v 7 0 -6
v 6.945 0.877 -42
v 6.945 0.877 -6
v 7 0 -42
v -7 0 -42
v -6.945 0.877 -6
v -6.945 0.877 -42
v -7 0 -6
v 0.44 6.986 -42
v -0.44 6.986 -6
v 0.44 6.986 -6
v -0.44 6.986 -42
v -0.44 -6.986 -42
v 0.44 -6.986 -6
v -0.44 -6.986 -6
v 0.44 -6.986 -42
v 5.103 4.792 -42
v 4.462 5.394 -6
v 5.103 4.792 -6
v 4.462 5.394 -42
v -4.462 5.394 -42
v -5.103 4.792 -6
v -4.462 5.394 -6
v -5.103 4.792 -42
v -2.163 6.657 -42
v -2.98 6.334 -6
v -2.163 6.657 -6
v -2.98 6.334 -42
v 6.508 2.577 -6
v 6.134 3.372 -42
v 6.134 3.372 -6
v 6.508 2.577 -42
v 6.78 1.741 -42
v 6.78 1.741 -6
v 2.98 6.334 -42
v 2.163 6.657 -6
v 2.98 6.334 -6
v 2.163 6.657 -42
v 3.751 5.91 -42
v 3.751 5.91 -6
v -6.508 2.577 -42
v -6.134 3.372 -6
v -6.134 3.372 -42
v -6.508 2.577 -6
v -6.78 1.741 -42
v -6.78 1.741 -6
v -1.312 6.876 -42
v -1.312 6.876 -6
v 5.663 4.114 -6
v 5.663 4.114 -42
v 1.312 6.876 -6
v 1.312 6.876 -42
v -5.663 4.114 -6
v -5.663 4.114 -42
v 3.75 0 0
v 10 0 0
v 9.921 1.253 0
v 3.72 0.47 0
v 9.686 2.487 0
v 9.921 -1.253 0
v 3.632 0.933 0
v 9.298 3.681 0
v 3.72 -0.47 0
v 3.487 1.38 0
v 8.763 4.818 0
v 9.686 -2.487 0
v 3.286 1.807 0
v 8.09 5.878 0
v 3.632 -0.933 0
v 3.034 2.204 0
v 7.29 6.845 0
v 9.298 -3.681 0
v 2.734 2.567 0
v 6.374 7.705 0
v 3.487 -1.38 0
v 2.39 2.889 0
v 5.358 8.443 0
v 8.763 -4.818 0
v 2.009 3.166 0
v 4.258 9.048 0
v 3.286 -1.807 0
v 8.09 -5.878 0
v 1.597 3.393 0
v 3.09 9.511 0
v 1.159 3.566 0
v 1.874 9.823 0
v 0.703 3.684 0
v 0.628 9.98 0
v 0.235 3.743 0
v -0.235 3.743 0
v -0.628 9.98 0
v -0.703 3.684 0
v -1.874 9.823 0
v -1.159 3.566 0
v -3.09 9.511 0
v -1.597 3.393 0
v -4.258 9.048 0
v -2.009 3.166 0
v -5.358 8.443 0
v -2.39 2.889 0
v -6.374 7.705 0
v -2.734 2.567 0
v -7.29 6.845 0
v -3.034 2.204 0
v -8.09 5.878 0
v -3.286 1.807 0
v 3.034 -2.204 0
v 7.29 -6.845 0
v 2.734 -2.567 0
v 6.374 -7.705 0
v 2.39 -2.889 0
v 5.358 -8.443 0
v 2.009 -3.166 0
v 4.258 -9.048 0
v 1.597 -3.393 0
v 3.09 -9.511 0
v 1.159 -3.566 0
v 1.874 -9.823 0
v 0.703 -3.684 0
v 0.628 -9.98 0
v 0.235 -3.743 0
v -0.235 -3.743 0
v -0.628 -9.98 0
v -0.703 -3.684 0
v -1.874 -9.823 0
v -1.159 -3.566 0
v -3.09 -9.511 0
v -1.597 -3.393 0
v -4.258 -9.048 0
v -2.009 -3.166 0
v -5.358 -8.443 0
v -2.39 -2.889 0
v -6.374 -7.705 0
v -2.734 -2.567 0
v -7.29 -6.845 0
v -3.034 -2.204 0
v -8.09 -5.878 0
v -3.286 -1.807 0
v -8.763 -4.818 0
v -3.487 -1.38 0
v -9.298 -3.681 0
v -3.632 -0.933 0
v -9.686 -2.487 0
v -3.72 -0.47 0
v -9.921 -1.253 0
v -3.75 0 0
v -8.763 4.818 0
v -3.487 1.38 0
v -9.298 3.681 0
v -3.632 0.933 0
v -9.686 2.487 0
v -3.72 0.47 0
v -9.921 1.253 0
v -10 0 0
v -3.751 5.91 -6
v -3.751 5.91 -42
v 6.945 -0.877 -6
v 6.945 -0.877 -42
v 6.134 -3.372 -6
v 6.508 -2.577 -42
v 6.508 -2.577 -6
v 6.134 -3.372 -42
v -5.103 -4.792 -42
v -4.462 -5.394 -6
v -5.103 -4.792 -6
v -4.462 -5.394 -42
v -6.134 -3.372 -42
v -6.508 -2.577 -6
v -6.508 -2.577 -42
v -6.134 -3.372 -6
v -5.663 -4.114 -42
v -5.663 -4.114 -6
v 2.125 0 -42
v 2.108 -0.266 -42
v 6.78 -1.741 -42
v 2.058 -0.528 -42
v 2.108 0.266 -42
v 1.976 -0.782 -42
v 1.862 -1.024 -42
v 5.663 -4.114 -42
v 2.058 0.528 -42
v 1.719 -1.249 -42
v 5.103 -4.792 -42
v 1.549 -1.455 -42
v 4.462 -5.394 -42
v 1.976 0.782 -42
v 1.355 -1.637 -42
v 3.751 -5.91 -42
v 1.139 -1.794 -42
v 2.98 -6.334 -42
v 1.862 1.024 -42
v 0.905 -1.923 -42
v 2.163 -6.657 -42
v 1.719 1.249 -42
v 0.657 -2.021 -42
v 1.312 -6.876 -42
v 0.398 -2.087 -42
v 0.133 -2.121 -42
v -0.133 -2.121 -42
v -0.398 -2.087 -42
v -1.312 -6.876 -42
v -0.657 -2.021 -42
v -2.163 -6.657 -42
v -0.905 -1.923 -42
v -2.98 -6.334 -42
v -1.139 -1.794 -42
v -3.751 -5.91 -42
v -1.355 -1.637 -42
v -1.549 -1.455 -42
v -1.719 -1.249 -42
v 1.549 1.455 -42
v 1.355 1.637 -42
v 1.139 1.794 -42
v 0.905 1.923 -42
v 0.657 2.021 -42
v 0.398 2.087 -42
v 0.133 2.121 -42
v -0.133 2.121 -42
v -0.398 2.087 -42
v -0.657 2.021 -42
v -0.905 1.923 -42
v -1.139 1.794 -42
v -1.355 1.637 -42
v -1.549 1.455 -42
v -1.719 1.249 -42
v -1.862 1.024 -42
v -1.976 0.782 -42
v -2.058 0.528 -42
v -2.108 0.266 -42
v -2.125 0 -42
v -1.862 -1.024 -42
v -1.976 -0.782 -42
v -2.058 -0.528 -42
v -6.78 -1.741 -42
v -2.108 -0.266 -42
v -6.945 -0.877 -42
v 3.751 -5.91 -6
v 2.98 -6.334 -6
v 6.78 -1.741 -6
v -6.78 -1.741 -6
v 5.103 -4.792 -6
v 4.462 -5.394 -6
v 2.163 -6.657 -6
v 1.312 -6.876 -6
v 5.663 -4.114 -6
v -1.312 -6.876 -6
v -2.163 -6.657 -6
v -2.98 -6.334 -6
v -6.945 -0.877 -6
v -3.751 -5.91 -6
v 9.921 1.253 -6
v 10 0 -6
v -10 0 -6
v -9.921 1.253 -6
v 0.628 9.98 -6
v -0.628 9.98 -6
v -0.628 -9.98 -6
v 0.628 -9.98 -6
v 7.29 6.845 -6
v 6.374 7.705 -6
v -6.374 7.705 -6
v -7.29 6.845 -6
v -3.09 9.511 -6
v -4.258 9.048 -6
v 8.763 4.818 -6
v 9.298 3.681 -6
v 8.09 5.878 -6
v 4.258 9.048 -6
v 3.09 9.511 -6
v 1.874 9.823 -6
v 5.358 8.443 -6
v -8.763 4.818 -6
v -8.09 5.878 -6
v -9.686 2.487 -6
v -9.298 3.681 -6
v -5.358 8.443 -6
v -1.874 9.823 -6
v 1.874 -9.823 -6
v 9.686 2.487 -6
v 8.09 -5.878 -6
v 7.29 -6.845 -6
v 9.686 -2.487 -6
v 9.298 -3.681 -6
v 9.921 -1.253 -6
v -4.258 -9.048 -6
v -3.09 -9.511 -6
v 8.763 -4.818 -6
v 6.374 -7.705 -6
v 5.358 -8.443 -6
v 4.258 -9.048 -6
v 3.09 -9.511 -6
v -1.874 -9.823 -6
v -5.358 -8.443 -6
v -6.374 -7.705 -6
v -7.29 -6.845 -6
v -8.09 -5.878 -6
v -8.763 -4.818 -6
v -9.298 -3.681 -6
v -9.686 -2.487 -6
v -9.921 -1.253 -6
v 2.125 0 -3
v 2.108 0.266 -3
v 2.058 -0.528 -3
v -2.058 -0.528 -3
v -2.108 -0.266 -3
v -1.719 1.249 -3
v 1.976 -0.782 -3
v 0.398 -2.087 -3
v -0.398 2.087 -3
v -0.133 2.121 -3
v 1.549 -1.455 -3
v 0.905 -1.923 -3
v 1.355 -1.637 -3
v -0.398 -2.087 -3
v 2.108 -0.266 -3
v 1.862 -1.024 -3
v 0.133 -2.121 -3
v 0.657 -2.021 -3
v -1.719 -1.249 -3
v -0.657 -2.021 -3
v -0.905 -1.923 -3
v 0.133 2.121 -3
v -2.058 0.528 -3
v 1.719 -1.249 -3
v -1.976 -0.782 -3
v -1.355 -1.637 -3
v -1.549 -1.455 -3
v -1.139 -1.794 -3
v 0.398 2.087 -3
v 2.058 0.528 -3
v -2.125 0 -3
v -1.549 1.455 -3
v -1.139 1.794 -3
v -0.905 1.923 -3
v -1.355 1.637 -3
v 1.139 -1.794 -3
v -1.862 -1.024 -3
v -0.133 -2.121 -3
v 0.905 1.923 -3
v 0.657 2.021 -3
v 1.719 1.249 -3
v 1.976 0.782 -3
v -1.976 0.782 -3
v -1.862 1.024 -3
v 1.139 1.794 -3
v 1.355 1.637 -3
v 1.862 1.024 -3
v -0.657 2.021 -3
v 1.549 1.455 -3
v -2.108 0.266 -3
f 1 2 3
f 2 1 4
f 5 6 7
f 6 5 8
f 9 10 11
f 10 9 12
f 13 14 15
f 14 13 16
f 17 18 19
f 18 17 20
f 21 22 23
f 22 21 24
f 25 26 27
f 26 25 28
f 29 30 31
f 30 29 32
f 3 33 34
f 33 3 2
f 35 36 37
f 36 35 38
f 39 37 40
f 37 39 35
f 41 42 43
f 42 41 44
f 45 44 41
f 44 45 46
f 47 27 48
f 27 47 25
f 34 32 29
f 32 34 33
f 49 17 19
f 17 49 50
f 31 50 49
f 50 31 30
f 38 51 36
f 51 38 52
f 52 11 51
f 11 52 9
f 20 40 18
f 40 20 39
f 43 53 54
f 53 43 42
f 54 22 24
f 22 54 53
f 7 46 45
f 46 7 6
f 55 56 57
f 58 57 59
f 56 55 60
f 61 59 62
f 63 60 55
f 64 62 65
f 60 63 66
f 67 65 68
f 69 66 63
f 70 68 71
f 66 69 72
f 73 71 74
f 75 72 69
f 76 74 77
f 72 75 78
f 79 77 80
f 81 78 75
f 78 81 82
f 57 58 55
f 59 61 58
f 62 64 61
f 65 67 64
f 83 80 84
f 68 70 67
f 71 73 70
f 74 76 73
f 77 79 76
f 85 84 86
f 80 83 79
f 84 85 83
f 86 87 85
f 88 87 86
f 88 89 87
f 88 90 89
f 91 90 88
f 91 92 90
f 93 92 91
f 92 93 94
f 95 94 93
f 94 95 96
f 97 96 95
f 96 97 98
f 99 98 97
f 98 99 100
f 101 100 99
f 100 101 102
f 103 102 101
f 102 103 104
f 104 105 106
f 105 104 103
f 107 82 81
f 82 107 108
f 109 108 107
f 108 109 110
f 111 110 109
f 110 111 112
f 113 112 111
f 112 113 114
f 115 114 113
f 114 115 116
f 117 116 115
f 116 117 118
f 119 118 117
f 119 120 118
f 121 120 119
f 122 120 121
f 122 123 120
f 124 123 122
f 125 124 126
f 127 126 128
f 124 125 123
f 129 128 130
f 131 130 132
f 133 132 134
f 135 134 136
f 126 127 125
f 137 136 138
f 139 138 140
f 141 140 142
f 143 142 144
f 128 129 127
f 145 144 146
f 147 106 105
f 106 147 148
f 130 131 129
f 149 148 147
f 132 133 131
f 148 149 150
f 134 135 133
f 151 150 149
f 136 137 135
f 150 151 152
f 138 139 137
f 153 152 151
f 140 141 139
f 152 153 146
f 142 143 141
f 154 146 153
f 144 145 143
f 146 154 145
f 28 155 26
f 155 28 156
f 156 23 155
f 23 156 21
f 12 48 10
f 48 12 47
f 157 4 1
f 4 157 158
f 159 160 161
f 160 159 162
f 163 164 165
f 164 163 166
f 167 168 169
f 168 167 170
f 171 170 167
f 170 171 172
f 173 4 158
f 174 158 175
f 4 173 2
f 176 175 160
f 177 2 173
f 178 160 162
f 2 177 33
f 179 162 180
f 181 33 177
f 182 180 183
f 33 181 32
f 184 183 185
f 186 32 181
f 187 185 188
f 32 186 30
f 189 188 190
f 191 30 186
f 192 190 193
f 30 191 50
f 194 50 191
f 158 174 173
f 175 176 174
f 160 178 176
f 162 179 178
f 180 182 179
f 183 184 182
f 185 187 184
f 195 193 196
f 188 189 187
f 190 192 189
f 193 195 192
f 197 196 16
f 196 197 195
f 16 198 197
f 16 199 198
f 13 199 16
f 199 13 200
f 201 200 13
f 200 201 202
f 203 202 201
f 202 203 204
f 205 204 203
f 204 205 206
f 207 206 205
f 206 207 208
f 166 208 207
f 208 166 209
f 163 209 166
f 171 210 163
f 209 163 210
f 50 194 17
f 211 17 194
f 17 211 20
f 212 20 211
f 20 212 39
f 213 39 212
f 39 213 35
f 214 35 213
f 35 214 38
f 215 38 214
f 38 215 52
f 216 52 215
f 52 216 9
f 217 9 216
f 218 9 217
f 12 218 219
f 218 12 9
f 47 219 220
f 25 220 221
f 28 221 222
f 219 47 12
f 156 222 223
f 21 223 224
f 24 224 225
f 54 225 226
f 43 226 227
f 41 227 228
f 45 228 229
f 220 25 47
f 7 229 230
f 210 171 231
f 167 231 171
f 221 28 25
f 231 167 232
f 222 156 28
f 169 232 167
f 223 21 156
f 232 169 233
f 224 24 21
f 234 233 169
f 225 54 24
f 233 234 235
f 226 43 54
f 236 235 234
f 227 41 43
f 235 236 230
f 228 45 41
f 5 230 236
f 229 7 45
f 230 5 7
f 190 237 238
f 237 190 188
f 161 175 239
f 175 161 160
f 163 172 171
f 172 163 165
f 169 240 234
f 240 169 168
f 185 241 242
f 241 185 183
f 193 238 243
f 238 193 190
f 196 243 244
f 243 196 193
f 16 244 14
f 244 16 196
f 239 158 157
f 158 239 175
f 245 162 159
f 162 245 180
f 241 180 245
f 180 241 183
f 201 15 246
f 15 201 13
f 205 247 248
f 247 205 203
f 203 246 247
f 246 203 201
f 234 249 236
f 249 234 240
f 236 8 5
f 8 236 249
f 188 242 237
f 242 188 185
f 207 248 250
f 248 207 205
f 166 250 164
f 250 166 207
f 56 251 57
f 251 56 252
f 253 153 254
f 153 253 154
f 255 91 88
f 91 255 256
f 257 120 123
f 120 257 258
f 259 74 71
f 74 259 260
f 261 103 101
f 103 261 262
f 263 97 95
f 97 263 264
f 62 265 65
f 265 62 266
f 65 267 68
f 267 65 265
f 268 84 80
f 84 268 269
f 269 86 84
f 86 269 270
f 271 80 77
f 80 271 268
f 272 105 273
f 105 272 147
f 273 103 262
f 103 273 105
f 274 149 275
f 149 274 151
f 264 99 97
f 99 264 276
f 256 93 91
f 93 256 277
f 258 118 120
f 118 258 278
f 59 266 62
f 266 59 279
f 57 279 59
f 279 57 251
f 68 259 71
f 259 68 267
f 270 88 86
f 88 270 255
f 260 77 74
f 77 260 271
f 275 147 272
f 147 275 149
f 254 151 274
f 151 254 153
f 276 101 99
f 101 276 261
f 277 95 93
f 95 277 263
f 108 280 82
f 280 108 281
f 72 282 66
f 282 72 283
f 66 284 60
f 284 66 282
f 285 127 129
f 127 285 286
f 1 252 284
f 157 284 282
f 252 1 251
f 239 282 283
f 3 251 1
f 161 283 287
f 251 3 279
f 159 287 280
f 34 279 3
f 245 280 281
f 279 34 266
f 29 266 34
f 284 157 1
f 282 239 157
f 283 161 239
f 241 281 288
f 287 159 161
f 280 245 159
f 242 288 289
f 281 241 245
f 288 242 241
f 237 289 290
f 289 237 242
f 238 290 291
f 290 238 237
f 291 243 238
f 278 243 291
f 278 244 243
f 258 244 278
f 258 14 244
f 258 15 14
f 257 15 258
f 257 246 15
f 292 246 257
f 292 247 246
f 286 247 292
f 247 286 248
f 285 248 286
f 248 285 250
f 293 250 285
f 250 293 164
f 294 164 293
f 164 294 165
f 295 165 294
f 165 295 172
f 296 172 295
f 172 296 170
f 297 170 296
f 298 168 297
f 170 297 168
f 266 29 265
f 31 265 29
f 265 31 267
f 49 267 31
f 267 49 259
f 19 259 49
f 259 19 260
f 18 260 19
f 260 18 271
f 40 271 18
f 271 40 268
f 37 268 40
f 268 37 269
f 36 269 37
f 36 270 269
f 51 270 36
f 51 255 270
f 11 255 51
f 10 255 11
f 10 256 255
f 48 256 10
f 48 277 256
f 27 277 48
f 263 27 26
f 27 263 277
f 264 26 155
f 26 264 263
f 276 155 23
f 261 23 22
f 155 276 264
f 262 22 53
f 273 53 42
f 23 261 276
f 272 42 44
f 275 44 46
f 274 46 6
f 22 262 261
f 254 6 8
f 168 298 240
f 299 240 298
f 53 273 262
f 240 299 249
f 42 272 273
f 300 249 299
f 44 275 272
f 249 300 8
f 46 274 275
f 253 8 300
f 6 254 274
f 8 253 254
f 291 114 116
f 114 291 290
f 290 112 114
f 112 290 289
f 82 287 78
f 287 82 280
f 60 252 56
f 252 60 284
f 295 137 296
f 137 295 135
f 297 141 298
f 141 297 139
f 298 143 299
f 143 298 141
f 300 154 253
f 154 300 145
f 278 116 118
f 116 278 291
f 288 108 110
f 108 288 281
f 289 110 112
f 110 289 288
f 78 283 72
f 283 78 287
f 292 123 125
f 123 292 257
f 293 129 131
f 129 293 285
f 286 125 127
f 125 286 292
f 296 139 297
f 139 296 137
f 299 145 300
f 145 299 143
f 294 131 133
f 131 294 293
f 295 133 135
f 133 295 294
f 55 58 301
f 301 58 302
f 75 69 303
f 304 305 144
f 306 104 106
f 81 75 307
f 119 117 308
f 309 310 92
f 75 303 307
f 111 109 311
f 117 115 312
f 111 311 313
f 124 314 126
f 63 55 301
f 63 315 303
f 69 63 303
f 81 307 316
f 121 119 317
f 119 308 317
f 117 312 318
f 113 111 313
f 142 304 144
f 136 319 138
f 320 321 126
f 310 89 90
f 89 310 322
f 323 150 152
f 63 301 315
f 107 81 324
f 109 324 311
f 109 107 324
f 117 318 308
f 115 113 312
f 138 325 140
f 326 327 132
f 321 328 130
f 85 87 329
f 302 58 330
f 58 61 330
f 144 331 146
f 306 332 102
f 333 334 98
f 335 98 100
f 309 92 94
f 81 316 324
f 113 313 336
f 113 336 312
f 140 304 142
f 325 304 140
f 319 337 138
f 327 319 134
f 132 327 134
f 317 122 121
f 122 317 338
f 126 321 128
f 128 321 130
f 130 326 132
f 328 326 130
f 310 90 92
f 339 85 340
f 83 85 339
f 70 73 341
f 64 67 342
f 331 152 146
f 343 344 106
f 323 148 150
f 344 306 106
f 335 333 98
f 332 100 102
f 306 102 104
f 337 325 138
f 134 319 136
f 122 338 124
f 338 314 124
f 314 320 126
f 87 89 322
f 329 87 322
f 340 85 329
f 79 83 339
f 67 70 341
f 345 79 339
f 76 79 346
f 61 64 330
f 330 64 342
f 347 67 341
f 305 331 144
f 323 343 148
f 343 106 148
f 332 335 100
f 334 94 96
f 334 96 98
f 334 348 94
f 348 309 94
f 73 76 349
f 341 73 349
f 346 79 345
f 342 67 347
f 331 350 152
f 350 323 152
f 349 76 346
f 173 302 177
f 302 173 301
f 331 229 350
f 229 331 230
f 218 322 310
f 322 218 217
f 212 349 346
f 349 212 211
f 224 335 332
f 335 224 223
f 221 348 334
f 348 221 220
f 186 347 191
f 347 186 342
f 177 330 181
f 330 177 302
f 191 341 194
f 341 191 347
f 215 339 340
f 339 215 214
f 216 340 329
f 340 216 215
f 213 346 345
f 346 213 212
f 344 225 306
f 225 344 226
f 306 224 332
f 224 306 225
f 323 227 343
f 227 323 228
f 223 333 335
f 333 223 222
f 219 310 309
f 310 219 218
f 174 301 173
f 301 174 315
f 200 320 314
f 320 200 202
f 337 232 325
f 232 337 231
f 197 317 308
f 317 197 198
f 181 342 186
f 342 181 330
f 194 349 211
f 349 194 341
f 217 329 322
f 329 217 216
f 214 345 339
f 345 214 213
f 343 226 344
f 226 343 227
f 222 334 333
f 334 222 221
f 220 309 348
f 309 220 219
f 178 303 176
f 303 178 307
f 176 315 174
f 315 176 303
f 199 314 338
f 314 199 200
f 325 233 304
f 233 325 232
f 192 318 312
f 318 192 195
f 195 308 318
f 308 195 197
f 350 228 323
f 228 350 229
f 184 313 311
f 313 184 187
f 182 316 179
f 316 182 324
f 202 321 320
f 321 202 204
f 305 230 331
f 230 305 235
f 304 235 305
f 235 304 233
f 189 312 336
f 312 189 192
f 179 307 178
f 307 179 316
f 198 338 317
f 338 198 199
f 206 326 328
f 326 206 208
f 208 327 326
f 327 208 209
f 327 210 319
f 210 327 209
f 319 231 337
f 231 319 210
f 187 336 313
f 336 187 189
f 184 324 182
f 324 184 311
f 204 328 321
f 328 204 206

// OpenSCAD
$fn = 50;


difference() {
	union() {
		translate(v = [0, 0, -42.0000000000]) {
			cylinder(h = 42, r = 7.0000000000);
		}
		translate(v = [0, 0, -6.0000000000]) {
			cylinder(h = 6, r = 10.0000000000);
		}
	}
	union() {
		translate(v = [0, 0, 0]) {
			rotate(a = [0, 0, 0]) {
				difference() {
					union() {
						#translate(v = [0, 0, -42.0000000000]) {
							cylinder(h = 42, r = 2.0000000000);
						}
						#translate(v = [0, 0, -3]) {
							cylinder(h = 3, r1 = 2.1250000000, r2 = 3.7500000000);
						}
						#translate(v = [0, 0, -42.0000000000]) {
							cylinder(h = 42, r = 2.1250000000);
						}
						#translate(v = [0, 0, -42.0000000000]) {
							cylinder(h = 42, r = 2.0000000000);
						}
					}
					union();
				}
			}
		}
	}
}
